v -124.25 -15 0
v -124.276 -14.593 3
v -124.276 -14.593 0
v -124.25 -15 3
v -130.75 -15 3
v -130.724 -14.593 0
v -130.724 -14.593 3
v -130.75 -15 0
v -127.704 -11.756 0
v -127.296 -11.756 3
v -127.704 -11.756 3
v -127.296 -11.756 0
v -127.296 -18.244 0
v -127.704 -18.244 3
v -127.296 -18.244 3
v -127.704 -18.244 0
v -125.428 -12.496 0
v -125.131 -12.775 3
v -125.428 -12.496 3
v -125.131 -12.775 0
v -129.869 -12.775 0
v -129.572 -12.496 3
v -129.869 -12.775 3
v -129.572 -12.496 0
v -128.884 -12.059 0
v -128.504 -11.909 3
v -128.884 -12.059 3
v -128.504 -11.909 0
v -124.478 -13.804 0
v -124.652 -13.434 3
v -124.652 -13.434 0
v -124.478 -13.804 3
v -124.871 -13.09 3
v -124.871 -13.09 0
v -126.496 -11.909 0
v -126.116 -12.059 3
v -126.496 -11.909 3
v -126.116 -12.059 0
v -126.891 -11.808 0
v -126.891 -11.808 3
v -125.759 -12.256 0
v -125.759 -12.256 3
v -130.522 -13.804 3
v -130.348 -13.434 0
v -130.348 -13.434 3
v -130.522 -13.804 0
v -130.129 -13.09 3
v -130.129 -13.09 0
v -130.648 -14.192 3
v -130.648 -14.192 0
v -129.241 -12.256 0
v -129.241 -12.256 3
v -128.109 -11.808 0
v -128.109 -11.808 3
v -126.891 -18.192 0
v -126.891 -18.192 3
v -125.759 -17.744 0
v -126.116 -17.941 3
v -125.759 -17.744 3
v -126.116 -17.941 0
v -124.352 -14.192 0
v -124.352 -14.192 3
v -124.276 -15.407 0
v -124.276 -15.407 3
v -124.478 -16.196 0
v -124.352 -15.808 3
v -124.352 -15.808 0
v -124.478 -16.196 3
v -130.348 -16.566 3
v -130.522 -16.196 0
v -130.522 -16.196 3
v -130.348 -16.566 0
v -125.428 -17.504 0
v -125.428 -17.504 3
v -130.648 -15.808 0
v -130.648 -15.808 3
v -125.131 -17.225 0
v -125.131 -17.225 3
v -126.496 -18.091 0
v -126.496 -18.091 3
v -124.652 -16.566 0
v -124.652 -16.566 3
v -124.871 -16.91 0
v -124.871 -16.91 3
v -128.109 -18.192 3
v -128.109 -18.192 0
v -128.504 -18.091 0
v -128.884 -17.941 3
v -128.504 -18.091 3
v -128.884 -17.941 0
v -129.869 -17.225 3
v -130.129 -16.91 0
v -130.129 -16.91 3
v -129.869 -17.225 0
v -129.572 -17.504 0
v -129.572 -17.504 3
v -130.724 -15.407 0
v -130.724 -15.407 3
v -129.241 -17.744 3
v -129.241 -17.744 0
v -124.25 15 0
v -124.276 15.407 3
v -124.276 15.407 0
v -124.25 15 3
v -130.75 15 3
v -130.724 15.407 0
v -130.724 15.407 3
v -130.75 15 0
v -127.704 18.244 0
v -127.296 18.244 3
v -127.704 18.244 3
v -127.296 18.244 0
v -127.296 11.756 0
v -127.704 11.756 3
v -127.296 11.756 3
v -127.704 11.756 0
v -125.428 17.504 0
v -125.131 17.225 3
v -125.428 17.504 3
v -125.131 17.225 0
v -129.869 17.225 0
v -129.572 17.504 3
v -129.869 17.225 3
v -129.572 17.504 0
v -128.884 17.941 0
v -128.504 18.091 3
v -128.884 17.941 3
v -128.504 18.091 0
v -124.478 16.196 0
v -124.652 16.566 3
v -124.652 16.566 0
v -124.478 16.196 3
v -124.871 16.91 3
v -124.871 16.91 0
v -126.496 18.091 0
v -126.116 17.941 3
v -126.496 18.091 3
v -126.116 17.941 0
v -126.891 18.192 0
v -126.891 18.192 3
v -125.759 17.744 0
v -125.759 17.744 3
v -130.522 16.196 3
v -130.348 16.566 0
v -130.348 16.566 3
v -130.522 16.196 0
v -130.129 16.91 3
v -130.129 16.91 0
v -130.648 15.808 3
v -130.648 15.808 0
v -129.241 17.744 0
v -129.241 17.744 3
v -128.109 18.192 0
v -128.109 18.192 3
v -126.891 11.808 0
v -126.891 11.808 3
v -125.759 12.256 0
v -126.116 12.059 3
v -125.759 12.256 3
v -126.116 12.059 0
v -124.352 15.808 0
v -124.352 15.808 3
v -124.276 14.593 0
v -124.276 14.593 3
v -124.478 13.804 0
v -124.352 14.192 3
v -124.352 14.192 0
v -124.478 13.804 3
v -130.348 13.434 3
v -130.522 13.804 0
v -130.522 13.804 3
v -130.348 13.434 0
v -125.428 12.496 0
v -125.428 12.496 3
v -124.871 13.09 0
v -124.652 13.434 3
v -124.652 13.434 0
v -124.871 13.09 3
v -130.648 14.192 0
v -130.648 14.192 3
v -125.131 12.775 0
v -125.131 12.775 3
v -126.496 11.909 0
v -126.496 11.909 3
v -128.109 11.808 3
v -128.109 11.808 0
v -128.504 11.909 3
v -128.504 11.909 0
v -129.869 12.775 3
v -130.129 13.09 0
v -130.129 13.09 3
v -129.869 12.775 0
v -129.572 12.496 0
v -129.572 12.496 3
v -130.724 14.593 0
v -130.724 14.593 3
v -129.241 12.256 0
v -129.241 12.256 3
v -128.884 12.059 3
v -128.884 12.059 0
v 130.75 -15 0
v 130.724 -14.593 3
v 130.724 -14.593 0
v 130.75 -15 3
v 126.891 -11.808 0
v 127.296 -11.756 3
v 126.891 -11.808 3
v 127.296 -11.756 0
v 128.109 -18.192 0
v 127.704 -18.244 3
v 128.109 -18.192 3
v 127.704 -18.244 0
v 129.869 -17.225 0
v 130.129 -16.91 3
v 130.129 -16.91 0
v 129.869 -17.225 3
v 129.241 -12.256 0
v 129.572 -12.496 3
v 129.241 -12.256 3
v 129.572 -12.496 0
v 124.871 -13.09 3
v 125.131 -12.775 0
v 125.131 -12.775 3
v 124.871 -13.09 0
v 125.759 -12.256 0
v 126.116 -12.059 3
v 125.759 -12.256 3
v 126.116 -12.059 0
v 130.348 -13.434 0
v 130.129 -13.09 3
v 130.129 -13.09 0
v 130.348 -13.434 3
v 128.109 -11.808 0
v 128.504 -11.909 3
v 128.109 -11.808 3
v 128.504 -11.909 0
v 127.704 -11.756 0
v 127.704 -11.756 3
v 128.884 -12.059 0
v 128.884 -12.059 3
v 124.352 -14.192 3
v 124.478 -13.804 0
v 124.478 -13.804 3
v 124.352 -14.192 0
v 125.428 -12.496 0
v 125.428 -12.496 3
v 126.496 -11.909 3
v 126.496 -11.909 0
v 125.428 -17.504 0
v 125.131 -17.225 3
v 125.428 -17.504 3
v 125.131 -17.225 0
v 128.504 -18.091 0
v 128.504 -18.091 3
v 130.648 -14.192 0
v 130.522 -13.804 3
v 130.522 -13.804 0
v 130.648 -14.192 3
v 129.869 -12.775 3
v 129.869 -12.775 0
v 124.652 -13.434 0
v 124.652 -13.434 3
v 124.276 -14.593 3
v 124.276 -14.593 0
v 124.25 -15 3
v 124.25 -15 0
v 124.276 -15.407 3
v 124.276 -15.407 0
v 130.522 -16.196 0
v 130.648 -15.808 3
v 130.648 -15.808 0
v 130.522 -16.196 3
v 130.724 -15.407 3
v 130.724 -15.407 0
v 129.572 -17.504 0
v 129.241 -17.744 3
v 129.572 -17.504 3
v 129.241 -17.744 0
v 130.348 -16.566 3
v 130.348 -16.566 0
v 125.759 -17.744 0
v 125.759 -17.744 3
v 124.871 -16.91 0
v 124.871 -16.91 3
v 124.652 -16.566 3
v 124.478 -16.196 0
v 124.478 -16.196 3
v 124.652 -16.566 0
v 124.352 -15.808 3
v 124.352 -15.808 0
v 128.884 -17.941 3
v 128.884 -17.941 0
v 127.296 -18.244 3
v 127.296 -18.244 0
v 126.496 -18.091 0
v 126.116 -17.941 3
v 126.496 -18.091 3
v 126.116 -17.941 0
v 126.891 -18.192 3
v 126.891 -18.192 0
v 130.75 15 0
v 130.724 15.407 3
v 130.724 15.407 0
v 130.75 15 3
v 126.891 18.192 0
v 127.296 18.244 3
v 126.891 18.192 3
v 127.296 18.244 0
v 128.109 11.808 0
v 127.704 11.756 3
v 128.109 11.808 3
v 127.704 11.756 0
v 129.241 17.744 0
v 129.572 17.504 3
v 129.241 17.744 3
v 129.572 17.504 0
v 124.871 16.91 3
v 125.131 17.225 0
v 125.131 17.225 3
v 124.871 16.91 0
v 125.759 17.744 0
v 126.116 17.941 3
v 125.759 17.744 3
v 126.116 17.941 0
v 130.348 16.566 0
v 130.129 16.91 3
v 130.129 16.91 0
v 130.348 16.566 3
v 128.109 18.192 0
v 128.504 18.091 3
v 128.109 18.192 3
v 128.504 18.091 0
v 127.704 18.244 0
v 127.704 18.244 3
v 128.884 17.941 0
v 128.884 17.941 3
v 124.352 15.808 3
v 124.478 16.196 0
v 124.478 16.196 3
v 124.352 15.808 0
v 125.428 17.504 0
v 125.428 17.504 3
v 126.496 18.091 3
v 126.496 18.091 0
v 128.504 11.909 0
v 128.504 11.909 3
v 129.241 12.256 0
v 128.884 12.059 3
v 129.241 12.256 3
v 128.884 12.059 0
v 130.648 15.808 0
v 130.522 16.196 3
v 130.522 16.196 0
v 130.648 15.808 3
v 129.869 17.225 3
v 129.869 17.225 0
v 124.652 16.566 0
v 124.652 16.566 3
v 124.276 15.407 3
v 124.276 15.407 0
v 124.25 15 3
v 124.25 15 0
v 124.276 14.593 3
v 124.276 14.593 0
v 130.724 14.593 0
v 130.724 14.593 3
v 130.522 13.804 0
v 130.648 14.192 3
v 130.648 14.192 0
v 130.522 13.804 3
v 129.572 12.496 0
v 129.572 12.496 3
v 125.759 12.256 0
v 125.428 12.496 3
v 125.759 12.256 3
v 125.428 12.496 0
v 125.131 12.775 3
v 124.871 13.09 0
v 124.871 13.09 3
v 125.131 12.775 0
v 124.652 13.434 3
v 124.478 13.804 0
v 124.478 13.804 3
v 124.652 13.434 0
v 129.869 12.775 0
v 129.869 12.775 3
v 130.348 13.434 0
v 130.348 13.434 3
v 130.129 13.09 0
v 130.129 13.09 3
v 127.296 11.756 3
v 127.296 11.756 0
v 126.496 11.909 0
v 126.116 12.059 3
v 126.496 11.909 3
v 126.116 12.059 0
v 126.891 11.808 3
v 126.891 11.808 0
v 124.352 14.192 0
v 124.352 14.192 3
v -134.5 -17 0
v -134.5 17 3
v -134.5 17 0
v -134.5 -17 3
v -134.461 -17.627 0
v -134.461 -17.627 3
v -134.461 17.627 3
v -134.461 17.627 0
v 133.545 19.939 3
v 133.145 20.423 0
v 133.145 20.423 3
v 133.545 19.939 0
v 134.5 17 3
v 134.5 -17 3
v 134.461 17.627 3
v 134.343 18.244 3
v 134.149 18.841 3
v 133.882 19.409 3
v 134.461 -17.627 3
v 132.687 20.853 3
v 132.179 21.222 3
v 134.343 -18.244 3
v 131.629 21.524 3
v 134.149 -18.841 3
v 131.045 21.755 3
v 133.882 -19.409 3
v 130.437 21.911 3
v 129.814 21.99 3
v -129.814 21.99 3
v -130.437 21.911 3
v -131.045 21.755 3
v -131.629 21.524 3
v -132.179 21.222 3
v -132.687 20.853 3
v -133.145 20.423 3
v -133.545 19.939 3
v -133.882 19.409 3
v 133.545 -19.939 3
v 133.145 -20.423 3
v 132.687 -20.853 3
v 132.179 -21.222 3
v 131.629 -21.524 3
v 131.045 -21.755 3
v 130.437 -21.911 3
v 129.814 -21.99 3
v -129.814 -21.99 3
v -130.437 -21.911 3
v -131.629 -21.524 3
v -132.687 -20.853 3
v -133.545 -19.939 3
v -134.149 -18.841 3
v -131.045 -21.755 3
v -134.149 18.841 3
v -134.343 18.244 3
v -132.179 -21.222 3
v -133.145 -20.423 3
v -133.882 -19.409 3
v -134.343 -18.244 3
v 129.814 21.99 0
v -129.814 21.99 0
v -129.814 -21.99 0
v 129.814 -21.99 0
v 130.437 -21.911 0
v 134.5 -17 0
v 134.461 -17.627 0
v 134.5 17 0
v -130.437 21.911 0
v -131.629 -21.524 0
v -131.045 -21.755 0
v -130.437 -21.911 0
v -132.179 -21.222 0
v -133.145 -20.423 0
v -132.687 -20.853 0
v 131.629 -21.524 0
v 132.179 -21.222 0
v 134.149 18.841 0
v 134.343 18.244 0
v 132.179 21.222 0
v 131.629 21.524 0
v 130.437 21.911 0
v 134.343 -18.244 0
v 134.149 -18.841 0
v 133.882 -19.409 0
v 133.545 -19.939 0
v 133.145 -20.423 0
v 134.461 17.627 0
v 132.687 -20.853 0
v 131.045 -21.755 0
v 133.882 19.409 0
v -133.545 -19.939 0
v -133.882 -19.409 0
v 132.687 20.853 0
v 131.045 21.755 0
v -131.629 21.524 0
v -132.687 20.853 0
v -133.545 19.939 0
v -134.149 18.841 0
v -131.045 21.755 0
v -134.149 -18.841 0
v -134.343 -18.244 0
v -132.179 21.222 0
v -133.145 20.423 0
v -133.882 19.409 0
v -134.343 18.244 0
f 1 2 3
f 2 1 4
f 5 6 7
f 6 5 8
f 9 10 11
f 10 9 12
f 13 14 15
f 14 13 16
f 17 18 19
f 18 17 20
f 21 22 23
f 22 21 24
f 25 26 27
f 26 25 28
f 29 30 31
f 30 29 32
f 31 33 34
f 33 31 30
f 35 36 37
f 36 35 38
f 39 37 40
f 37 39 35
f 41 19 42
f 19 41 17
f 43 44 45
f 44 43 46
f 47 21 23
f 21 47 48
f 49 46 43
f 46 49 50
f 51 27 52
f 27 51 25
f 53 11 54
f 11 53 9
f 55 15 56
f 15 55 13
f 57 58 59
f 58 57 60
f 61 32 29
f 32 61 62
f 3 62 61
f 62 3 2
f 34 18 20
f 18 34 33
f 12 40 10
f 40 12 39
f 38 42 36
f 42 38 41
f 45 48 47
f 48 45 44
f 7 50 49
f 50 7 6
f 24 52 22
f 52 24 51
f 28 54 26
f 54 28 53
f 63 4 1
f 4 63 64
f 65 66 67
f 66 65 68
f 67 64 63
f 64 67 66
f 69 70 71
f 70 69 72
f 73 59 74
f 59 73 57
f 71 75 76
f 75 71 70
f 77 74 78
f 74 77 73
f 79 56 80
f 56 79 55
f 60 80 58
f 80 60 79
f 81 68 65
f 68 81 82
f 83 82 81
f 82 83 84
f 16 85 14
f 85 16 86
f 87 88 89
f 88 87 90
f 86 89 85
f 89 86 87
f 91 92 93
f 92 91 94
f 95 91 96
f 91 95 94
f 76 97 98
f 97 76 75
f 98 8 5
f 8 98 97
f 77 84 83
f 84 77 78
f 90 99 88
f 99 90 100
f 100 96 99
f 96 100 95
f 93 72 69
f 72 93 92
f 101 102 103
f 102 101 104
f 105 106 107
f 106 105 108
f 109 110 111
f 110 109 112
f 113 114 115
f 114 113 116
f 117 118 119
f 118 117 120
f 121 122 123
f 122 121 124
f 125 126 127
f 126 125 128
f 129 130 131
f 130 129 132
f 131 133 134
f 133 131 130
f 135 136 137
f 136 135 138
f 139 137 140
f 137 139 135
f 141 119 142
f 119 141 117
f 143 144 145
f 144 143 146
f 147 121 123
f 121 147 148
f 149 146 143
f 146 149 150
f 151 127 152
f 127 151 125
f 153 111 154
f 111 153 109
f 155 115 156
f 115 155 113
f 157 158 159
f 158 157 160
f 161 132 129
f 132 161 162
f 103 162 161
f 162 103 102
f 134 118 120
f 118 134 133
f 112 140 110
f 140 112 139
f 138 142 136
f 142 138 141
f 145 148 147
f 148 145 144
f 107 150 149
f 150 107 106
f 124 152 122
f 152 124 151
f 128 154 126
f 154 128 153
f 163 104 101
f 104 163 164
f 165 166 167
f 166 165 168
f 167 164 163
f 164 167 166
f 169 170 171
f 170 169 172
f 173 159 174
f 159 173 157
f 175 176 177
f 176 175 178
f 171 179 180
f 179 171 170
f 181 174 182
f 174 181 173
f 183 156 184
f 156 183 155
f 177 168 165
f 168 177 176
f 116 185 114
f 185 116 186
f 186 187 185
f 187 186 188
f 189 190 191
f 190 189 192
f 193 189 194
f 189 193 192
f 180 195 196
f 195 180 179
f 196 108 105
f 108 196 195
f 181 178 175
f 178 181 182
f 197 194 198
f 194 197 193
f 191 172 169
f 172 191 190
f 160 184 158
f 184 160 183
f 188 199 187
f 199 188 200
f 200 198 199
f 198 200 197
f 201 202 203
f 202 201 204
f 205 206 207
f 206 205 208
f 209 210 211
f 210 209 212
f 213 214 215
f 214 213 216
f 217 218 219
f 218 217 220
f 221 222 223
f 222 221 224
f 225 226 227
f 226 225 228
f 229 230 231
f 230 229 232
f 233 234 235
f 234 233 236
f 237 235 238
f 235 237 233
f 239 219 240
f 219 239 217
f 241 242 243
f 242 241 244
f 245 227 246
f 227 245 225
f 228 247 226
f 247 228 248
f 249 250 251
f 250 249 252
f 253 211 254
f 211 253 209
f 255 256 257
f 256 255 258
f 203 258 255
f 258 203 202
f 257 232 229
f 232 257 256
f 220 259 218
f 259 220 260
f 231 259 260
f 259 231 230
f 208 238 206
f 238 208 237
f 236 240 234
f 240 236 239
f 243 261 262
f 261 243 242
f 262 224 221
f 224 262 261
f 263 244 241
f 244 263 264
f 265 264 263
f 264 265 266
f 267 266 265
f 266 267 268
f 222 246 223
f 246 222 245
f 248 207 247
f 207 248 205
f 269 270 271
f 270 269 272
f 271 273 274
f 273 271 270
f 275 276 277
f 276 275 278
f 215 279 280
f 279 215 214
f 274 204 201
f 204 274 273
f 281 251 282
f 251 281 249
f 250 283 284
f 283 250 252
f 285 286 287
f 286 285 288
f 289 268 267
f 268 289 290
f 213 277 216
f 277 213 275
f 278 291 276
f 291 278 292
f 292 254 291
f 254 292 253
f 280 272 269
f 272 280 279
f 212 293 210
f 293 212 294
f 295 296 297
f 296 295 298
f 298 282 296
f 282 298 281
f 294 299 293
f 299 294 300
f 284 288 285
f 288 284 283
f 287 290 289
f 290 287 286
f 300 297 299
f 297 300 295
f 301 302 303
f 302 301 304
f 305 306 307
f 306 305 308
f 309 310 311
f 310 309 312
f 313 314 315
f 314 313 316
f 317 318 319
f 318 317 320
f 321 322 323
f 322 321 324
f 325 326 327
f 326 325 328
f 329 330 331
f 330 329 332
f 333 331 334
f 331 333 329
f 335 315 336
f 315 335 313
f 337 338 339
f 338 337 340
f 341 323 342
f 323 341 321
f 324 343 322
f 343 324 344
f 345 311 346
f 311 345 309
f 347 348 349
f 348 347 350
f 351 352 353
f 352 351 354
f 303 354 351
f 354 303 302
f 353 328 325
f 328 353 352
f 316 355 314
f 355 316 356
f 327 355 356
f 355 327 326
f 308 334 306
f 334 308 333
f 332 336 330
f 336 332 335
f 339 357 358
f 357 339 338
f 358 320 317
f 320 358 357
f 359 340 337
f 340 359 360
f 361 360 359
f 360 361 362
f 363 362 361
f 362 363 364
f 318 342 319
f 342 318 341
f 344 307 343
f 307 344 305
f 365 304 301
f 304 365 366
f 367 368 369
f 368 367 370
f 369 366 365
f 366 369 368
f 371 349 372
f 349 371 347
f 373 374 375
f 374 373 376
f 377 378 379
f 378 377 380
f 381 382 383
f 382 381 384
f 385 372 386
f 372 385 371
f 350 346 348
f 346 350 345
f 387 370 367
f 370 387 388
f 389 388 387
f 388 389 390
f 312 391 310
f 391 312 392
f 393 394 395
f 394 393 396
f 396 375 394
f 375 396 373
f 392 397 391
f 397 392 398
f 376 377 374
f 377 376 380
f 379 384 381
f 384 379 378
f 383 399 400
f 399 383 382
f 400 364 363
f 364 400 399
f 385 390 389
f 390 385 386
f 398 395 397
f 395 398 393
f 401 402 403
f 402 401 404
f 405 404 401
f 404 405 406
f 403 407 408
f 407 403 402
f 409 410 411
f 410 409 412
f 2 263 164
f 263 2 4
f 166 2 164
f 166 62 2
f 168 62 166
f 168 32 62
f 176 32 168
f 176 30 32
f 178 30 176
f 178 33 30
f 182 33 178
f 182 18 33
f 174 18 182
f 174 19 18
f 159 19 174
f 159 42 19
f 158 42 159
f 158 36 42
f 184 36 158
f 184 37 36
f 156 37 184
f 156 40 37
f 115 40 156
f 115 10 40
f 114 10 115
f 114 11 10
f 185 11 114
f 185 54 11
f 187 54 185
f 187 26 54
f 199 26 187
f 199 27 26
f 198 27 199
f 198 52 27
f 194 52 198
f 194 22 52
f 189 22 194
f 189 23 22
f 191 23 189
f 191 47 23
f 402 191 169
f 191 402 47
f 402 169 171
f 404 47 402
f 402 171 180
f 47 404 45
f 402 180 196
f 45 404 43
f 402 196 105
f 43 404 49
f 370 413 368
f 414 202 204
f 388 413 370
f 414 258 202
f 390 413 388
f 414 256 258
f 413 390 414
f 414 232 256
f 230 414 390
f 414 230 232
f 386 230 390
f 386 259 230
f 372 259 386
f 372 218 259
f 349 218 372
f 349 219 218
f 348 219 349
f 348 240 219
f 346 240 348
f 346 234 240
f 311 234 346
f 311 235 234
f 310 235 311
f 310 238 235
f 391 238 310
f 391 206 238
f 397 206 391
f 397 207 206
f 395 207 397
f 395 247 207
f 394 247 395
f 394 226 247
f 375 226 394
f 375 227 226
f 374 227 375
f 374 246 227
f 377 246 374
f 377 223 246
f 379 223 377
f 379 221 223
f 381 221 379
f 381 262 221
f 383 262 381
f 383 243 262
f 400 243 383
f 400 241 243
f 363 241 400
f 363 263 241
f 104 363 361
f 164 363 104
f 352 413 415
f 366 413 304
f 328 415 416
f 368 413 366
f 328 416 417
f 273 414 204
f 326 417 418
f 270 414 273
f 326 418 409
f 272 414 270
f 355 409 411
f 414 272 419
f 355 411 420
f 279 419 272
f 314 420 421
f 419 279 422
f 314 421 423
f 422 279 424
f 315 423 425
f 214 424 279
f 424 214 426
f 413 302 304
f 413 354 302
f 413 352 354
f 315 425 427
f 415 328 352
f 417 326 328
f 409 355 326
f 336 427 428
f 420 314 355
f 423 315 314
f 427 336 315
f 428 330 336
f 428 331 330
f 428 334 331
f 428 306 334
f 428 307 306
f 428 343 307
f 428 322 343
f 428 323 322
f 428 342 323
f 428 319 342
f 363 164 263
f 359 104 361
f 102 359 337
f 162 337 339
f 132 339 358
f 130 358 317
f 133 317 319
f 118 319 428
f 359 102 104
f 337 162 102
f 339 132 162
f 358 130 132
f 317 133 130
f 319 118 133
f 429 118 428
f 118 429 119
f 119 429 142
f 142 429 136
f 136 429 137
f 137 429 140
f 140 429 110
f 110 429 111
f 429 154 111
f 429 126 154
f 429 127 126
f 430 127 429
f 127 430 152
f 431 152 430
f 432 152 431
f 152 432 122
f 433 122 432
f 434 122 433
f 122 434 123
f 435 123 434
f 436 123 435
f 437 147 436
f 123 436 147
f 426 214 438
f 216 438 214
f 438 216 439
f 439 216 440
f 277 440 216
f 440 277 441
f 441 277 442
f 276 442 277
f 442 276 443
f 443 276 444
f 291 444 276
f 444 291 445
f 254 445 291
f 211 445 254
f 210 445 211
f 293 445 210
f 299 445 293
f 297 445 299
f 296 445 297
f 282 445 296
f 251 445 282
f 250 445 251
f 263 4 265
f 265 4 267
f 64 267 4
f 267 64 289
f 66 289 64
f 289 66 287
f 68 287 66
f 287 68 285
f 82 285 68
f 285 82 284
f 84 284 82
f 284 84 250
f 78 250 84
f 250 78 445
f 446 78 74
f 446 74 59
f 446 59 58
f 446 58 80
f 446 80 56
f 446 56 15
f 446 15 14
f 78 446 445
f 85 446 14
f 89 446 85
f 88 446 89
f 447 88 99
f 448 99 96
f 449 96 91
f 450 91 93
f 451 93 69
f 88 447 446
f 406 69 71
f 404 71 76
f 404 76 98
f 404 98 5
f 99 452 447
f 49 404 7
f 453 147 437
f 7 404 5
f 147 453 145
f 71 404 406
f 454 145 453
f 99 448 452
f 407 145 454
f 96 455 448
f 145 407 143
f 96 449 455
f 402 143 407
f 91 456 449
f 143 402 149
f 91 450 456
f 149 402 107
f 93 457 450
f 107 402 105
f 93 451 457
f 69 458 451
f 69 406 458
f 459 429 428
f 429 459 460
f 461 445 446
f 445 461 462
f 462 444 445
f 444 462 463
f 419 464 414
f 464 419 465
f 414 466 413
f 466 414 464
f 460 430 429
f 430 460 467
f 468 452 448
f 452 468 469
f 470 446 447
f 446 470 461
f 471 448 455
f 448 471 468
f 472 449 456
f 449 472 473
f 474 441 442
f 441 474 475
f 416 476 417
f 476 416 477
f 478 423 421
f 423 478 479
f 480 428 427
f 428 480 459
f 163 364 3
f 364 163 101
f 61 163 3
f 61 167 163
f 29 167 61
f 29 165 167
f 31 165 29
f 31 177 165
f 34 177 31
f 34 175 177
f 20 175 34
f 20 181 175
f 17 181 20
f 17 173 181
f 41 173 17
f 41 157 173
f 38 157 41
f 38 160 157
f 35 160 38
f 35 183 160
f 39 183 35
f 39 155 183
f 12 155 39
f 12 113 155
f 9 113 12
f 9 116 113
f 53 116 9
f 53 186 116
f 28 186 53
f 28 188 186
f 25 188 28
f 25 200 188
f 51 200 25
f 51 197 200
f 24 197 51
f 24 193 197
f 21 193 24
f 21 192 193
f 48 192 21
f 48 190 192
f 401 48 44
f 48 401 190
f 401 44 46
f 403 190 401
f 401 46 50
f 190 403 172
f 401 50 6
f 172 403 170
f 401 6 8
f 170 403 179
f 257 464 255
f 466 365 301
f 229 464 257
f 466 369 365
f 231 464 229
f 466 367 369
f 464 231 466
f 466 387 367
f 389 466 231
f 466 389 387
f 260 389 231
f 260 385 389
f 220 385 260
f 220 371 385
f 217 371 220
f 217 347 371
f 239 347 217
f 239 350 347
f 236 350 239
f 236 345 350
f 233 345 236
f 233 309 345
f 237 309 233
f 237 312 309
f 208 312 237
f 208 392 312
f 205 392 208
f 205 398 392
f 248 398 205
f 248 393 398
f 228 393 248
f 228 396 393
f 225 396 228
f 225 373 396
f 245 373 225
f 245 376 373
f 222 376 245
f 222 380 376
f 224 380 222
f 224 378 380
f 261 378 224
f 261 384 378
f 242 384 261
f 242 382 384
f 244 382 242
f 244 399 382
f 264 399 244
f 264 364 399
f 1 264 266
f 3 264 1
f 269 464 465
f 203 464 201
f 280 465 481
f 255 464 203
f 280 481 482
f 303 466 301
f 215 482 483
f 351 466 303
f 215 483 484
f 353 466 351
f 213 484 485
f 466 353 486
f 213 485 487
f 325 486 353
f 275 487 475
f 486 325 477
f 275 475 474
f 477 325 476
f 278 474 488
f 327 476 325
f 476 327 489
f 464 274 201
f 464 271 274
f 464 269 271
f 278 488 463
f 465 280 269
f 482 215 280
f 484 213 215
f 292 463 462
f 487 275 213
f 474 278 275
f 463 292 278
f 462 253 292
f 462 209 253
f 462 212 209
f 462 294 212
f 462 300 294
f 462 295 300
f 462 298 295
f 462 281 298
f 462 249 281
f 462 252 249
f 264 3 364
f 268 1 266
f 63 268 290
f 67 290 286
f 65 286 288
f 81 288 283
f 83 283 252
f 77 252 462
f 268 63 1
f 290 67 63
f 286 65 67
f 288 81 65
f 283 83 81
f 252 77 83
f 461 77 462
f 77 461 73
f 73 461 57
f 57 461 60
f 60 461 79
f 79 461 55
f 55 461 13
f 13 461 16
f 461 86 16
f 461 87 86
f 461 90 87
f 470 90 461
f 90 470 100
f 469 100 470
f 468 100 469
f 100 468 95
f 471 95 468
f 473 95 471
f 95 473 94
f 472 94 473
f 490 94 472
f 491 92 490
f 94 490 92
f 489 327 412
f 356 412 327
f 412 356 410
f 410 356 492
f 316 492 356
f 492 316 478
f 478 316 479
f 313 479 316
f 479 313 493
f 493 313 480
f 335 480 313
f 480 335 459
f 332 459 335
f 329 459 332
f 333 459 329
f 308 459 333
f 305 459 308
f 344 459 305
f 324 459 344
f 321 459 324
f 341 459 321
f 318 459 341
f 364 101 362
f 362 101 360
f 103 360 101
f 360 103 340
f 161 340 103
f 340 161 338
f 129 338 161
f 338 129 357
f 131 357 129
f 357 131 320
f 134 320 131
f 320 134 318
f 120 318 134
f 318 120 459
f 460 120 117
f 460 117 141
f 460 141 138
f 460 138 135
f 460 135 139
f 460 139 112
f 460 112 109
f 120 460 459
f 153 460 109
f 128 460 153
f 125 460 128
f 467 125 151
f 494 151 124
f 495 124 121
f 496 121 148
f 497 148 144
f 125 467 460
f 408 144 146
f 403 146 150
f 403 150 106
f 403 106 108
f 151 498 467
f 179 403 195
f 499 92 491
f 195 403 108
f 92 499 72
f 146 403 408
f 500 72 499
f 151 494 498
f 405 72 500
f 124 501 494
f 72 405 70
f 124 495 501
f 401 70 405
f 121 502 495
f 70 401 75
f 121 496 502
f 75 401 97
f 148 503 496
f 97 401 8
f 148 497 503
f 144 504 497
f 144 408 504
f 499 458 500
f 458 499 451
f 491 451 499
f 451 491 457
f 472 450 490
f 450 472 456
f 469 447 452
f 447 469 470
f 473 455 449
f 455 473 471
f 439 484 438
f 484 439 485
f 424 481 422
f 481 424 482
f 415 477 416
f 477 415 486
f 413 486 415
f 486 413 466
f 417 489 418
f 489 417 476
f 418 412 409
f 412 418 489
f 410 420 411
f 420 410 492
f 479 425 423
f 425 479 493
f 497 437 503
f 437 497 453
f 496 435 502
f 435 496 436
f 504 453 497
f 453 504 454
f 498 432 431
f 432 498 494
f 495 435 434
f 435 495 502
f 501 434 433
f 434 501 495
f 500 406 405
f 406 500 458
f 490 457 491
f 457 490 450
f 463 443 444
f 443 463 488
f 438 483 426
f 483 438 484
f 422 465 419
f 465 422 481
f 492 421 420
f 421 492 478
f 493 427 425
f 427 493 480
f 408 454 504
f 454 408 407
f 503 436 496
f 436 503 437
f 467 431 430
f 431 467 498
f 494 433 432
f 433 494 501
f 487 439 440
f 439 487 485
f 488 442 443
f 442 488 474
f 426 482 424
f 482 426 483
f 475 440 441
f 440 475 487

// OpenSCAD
$fn = 50;


difference() {
	union() {
		hull() {
			translate(v = [-129.5000000000, 17.0000000000, 0]) {
				cylinder(h = 3, r = 5);
			}
			translate(v = [129.5000000000, 17.0000000000, 0]) {
				cylinder(h = 3, r = 5);
			}
			translate(v = [-129.5000000000, -17.0000000000, 0]) {
				cylinder(h = 3, r = 5);
			}
			translate(v = [129.5000000000, -17.0000000000, 0]) {
				cylinder(h = 3, r = 5);
			}
		}
	}
	union() {
		translate(v = [-127.5000000000, -15.0000000000, -100.0000000000]) {
			cylinder(h = 200, r = 3.2500000000);
		}
		translate(v = [-127.5000000000, 15.0000000000, -100.0000000000]) {
			cylinder(h = 200, r = 3.2500000000);
		}
		translate(v = [127.5000000000, -15.0000000000, -100.0000000000]) {
			cylinder(h = 200, r = 3.2500000000);
		}
		translate(v = [127.5000000000, 15.0000000000, -100.0000000000]) {
			cylinder(h = 200, r = 3.2500000000);
		}
	}
}
